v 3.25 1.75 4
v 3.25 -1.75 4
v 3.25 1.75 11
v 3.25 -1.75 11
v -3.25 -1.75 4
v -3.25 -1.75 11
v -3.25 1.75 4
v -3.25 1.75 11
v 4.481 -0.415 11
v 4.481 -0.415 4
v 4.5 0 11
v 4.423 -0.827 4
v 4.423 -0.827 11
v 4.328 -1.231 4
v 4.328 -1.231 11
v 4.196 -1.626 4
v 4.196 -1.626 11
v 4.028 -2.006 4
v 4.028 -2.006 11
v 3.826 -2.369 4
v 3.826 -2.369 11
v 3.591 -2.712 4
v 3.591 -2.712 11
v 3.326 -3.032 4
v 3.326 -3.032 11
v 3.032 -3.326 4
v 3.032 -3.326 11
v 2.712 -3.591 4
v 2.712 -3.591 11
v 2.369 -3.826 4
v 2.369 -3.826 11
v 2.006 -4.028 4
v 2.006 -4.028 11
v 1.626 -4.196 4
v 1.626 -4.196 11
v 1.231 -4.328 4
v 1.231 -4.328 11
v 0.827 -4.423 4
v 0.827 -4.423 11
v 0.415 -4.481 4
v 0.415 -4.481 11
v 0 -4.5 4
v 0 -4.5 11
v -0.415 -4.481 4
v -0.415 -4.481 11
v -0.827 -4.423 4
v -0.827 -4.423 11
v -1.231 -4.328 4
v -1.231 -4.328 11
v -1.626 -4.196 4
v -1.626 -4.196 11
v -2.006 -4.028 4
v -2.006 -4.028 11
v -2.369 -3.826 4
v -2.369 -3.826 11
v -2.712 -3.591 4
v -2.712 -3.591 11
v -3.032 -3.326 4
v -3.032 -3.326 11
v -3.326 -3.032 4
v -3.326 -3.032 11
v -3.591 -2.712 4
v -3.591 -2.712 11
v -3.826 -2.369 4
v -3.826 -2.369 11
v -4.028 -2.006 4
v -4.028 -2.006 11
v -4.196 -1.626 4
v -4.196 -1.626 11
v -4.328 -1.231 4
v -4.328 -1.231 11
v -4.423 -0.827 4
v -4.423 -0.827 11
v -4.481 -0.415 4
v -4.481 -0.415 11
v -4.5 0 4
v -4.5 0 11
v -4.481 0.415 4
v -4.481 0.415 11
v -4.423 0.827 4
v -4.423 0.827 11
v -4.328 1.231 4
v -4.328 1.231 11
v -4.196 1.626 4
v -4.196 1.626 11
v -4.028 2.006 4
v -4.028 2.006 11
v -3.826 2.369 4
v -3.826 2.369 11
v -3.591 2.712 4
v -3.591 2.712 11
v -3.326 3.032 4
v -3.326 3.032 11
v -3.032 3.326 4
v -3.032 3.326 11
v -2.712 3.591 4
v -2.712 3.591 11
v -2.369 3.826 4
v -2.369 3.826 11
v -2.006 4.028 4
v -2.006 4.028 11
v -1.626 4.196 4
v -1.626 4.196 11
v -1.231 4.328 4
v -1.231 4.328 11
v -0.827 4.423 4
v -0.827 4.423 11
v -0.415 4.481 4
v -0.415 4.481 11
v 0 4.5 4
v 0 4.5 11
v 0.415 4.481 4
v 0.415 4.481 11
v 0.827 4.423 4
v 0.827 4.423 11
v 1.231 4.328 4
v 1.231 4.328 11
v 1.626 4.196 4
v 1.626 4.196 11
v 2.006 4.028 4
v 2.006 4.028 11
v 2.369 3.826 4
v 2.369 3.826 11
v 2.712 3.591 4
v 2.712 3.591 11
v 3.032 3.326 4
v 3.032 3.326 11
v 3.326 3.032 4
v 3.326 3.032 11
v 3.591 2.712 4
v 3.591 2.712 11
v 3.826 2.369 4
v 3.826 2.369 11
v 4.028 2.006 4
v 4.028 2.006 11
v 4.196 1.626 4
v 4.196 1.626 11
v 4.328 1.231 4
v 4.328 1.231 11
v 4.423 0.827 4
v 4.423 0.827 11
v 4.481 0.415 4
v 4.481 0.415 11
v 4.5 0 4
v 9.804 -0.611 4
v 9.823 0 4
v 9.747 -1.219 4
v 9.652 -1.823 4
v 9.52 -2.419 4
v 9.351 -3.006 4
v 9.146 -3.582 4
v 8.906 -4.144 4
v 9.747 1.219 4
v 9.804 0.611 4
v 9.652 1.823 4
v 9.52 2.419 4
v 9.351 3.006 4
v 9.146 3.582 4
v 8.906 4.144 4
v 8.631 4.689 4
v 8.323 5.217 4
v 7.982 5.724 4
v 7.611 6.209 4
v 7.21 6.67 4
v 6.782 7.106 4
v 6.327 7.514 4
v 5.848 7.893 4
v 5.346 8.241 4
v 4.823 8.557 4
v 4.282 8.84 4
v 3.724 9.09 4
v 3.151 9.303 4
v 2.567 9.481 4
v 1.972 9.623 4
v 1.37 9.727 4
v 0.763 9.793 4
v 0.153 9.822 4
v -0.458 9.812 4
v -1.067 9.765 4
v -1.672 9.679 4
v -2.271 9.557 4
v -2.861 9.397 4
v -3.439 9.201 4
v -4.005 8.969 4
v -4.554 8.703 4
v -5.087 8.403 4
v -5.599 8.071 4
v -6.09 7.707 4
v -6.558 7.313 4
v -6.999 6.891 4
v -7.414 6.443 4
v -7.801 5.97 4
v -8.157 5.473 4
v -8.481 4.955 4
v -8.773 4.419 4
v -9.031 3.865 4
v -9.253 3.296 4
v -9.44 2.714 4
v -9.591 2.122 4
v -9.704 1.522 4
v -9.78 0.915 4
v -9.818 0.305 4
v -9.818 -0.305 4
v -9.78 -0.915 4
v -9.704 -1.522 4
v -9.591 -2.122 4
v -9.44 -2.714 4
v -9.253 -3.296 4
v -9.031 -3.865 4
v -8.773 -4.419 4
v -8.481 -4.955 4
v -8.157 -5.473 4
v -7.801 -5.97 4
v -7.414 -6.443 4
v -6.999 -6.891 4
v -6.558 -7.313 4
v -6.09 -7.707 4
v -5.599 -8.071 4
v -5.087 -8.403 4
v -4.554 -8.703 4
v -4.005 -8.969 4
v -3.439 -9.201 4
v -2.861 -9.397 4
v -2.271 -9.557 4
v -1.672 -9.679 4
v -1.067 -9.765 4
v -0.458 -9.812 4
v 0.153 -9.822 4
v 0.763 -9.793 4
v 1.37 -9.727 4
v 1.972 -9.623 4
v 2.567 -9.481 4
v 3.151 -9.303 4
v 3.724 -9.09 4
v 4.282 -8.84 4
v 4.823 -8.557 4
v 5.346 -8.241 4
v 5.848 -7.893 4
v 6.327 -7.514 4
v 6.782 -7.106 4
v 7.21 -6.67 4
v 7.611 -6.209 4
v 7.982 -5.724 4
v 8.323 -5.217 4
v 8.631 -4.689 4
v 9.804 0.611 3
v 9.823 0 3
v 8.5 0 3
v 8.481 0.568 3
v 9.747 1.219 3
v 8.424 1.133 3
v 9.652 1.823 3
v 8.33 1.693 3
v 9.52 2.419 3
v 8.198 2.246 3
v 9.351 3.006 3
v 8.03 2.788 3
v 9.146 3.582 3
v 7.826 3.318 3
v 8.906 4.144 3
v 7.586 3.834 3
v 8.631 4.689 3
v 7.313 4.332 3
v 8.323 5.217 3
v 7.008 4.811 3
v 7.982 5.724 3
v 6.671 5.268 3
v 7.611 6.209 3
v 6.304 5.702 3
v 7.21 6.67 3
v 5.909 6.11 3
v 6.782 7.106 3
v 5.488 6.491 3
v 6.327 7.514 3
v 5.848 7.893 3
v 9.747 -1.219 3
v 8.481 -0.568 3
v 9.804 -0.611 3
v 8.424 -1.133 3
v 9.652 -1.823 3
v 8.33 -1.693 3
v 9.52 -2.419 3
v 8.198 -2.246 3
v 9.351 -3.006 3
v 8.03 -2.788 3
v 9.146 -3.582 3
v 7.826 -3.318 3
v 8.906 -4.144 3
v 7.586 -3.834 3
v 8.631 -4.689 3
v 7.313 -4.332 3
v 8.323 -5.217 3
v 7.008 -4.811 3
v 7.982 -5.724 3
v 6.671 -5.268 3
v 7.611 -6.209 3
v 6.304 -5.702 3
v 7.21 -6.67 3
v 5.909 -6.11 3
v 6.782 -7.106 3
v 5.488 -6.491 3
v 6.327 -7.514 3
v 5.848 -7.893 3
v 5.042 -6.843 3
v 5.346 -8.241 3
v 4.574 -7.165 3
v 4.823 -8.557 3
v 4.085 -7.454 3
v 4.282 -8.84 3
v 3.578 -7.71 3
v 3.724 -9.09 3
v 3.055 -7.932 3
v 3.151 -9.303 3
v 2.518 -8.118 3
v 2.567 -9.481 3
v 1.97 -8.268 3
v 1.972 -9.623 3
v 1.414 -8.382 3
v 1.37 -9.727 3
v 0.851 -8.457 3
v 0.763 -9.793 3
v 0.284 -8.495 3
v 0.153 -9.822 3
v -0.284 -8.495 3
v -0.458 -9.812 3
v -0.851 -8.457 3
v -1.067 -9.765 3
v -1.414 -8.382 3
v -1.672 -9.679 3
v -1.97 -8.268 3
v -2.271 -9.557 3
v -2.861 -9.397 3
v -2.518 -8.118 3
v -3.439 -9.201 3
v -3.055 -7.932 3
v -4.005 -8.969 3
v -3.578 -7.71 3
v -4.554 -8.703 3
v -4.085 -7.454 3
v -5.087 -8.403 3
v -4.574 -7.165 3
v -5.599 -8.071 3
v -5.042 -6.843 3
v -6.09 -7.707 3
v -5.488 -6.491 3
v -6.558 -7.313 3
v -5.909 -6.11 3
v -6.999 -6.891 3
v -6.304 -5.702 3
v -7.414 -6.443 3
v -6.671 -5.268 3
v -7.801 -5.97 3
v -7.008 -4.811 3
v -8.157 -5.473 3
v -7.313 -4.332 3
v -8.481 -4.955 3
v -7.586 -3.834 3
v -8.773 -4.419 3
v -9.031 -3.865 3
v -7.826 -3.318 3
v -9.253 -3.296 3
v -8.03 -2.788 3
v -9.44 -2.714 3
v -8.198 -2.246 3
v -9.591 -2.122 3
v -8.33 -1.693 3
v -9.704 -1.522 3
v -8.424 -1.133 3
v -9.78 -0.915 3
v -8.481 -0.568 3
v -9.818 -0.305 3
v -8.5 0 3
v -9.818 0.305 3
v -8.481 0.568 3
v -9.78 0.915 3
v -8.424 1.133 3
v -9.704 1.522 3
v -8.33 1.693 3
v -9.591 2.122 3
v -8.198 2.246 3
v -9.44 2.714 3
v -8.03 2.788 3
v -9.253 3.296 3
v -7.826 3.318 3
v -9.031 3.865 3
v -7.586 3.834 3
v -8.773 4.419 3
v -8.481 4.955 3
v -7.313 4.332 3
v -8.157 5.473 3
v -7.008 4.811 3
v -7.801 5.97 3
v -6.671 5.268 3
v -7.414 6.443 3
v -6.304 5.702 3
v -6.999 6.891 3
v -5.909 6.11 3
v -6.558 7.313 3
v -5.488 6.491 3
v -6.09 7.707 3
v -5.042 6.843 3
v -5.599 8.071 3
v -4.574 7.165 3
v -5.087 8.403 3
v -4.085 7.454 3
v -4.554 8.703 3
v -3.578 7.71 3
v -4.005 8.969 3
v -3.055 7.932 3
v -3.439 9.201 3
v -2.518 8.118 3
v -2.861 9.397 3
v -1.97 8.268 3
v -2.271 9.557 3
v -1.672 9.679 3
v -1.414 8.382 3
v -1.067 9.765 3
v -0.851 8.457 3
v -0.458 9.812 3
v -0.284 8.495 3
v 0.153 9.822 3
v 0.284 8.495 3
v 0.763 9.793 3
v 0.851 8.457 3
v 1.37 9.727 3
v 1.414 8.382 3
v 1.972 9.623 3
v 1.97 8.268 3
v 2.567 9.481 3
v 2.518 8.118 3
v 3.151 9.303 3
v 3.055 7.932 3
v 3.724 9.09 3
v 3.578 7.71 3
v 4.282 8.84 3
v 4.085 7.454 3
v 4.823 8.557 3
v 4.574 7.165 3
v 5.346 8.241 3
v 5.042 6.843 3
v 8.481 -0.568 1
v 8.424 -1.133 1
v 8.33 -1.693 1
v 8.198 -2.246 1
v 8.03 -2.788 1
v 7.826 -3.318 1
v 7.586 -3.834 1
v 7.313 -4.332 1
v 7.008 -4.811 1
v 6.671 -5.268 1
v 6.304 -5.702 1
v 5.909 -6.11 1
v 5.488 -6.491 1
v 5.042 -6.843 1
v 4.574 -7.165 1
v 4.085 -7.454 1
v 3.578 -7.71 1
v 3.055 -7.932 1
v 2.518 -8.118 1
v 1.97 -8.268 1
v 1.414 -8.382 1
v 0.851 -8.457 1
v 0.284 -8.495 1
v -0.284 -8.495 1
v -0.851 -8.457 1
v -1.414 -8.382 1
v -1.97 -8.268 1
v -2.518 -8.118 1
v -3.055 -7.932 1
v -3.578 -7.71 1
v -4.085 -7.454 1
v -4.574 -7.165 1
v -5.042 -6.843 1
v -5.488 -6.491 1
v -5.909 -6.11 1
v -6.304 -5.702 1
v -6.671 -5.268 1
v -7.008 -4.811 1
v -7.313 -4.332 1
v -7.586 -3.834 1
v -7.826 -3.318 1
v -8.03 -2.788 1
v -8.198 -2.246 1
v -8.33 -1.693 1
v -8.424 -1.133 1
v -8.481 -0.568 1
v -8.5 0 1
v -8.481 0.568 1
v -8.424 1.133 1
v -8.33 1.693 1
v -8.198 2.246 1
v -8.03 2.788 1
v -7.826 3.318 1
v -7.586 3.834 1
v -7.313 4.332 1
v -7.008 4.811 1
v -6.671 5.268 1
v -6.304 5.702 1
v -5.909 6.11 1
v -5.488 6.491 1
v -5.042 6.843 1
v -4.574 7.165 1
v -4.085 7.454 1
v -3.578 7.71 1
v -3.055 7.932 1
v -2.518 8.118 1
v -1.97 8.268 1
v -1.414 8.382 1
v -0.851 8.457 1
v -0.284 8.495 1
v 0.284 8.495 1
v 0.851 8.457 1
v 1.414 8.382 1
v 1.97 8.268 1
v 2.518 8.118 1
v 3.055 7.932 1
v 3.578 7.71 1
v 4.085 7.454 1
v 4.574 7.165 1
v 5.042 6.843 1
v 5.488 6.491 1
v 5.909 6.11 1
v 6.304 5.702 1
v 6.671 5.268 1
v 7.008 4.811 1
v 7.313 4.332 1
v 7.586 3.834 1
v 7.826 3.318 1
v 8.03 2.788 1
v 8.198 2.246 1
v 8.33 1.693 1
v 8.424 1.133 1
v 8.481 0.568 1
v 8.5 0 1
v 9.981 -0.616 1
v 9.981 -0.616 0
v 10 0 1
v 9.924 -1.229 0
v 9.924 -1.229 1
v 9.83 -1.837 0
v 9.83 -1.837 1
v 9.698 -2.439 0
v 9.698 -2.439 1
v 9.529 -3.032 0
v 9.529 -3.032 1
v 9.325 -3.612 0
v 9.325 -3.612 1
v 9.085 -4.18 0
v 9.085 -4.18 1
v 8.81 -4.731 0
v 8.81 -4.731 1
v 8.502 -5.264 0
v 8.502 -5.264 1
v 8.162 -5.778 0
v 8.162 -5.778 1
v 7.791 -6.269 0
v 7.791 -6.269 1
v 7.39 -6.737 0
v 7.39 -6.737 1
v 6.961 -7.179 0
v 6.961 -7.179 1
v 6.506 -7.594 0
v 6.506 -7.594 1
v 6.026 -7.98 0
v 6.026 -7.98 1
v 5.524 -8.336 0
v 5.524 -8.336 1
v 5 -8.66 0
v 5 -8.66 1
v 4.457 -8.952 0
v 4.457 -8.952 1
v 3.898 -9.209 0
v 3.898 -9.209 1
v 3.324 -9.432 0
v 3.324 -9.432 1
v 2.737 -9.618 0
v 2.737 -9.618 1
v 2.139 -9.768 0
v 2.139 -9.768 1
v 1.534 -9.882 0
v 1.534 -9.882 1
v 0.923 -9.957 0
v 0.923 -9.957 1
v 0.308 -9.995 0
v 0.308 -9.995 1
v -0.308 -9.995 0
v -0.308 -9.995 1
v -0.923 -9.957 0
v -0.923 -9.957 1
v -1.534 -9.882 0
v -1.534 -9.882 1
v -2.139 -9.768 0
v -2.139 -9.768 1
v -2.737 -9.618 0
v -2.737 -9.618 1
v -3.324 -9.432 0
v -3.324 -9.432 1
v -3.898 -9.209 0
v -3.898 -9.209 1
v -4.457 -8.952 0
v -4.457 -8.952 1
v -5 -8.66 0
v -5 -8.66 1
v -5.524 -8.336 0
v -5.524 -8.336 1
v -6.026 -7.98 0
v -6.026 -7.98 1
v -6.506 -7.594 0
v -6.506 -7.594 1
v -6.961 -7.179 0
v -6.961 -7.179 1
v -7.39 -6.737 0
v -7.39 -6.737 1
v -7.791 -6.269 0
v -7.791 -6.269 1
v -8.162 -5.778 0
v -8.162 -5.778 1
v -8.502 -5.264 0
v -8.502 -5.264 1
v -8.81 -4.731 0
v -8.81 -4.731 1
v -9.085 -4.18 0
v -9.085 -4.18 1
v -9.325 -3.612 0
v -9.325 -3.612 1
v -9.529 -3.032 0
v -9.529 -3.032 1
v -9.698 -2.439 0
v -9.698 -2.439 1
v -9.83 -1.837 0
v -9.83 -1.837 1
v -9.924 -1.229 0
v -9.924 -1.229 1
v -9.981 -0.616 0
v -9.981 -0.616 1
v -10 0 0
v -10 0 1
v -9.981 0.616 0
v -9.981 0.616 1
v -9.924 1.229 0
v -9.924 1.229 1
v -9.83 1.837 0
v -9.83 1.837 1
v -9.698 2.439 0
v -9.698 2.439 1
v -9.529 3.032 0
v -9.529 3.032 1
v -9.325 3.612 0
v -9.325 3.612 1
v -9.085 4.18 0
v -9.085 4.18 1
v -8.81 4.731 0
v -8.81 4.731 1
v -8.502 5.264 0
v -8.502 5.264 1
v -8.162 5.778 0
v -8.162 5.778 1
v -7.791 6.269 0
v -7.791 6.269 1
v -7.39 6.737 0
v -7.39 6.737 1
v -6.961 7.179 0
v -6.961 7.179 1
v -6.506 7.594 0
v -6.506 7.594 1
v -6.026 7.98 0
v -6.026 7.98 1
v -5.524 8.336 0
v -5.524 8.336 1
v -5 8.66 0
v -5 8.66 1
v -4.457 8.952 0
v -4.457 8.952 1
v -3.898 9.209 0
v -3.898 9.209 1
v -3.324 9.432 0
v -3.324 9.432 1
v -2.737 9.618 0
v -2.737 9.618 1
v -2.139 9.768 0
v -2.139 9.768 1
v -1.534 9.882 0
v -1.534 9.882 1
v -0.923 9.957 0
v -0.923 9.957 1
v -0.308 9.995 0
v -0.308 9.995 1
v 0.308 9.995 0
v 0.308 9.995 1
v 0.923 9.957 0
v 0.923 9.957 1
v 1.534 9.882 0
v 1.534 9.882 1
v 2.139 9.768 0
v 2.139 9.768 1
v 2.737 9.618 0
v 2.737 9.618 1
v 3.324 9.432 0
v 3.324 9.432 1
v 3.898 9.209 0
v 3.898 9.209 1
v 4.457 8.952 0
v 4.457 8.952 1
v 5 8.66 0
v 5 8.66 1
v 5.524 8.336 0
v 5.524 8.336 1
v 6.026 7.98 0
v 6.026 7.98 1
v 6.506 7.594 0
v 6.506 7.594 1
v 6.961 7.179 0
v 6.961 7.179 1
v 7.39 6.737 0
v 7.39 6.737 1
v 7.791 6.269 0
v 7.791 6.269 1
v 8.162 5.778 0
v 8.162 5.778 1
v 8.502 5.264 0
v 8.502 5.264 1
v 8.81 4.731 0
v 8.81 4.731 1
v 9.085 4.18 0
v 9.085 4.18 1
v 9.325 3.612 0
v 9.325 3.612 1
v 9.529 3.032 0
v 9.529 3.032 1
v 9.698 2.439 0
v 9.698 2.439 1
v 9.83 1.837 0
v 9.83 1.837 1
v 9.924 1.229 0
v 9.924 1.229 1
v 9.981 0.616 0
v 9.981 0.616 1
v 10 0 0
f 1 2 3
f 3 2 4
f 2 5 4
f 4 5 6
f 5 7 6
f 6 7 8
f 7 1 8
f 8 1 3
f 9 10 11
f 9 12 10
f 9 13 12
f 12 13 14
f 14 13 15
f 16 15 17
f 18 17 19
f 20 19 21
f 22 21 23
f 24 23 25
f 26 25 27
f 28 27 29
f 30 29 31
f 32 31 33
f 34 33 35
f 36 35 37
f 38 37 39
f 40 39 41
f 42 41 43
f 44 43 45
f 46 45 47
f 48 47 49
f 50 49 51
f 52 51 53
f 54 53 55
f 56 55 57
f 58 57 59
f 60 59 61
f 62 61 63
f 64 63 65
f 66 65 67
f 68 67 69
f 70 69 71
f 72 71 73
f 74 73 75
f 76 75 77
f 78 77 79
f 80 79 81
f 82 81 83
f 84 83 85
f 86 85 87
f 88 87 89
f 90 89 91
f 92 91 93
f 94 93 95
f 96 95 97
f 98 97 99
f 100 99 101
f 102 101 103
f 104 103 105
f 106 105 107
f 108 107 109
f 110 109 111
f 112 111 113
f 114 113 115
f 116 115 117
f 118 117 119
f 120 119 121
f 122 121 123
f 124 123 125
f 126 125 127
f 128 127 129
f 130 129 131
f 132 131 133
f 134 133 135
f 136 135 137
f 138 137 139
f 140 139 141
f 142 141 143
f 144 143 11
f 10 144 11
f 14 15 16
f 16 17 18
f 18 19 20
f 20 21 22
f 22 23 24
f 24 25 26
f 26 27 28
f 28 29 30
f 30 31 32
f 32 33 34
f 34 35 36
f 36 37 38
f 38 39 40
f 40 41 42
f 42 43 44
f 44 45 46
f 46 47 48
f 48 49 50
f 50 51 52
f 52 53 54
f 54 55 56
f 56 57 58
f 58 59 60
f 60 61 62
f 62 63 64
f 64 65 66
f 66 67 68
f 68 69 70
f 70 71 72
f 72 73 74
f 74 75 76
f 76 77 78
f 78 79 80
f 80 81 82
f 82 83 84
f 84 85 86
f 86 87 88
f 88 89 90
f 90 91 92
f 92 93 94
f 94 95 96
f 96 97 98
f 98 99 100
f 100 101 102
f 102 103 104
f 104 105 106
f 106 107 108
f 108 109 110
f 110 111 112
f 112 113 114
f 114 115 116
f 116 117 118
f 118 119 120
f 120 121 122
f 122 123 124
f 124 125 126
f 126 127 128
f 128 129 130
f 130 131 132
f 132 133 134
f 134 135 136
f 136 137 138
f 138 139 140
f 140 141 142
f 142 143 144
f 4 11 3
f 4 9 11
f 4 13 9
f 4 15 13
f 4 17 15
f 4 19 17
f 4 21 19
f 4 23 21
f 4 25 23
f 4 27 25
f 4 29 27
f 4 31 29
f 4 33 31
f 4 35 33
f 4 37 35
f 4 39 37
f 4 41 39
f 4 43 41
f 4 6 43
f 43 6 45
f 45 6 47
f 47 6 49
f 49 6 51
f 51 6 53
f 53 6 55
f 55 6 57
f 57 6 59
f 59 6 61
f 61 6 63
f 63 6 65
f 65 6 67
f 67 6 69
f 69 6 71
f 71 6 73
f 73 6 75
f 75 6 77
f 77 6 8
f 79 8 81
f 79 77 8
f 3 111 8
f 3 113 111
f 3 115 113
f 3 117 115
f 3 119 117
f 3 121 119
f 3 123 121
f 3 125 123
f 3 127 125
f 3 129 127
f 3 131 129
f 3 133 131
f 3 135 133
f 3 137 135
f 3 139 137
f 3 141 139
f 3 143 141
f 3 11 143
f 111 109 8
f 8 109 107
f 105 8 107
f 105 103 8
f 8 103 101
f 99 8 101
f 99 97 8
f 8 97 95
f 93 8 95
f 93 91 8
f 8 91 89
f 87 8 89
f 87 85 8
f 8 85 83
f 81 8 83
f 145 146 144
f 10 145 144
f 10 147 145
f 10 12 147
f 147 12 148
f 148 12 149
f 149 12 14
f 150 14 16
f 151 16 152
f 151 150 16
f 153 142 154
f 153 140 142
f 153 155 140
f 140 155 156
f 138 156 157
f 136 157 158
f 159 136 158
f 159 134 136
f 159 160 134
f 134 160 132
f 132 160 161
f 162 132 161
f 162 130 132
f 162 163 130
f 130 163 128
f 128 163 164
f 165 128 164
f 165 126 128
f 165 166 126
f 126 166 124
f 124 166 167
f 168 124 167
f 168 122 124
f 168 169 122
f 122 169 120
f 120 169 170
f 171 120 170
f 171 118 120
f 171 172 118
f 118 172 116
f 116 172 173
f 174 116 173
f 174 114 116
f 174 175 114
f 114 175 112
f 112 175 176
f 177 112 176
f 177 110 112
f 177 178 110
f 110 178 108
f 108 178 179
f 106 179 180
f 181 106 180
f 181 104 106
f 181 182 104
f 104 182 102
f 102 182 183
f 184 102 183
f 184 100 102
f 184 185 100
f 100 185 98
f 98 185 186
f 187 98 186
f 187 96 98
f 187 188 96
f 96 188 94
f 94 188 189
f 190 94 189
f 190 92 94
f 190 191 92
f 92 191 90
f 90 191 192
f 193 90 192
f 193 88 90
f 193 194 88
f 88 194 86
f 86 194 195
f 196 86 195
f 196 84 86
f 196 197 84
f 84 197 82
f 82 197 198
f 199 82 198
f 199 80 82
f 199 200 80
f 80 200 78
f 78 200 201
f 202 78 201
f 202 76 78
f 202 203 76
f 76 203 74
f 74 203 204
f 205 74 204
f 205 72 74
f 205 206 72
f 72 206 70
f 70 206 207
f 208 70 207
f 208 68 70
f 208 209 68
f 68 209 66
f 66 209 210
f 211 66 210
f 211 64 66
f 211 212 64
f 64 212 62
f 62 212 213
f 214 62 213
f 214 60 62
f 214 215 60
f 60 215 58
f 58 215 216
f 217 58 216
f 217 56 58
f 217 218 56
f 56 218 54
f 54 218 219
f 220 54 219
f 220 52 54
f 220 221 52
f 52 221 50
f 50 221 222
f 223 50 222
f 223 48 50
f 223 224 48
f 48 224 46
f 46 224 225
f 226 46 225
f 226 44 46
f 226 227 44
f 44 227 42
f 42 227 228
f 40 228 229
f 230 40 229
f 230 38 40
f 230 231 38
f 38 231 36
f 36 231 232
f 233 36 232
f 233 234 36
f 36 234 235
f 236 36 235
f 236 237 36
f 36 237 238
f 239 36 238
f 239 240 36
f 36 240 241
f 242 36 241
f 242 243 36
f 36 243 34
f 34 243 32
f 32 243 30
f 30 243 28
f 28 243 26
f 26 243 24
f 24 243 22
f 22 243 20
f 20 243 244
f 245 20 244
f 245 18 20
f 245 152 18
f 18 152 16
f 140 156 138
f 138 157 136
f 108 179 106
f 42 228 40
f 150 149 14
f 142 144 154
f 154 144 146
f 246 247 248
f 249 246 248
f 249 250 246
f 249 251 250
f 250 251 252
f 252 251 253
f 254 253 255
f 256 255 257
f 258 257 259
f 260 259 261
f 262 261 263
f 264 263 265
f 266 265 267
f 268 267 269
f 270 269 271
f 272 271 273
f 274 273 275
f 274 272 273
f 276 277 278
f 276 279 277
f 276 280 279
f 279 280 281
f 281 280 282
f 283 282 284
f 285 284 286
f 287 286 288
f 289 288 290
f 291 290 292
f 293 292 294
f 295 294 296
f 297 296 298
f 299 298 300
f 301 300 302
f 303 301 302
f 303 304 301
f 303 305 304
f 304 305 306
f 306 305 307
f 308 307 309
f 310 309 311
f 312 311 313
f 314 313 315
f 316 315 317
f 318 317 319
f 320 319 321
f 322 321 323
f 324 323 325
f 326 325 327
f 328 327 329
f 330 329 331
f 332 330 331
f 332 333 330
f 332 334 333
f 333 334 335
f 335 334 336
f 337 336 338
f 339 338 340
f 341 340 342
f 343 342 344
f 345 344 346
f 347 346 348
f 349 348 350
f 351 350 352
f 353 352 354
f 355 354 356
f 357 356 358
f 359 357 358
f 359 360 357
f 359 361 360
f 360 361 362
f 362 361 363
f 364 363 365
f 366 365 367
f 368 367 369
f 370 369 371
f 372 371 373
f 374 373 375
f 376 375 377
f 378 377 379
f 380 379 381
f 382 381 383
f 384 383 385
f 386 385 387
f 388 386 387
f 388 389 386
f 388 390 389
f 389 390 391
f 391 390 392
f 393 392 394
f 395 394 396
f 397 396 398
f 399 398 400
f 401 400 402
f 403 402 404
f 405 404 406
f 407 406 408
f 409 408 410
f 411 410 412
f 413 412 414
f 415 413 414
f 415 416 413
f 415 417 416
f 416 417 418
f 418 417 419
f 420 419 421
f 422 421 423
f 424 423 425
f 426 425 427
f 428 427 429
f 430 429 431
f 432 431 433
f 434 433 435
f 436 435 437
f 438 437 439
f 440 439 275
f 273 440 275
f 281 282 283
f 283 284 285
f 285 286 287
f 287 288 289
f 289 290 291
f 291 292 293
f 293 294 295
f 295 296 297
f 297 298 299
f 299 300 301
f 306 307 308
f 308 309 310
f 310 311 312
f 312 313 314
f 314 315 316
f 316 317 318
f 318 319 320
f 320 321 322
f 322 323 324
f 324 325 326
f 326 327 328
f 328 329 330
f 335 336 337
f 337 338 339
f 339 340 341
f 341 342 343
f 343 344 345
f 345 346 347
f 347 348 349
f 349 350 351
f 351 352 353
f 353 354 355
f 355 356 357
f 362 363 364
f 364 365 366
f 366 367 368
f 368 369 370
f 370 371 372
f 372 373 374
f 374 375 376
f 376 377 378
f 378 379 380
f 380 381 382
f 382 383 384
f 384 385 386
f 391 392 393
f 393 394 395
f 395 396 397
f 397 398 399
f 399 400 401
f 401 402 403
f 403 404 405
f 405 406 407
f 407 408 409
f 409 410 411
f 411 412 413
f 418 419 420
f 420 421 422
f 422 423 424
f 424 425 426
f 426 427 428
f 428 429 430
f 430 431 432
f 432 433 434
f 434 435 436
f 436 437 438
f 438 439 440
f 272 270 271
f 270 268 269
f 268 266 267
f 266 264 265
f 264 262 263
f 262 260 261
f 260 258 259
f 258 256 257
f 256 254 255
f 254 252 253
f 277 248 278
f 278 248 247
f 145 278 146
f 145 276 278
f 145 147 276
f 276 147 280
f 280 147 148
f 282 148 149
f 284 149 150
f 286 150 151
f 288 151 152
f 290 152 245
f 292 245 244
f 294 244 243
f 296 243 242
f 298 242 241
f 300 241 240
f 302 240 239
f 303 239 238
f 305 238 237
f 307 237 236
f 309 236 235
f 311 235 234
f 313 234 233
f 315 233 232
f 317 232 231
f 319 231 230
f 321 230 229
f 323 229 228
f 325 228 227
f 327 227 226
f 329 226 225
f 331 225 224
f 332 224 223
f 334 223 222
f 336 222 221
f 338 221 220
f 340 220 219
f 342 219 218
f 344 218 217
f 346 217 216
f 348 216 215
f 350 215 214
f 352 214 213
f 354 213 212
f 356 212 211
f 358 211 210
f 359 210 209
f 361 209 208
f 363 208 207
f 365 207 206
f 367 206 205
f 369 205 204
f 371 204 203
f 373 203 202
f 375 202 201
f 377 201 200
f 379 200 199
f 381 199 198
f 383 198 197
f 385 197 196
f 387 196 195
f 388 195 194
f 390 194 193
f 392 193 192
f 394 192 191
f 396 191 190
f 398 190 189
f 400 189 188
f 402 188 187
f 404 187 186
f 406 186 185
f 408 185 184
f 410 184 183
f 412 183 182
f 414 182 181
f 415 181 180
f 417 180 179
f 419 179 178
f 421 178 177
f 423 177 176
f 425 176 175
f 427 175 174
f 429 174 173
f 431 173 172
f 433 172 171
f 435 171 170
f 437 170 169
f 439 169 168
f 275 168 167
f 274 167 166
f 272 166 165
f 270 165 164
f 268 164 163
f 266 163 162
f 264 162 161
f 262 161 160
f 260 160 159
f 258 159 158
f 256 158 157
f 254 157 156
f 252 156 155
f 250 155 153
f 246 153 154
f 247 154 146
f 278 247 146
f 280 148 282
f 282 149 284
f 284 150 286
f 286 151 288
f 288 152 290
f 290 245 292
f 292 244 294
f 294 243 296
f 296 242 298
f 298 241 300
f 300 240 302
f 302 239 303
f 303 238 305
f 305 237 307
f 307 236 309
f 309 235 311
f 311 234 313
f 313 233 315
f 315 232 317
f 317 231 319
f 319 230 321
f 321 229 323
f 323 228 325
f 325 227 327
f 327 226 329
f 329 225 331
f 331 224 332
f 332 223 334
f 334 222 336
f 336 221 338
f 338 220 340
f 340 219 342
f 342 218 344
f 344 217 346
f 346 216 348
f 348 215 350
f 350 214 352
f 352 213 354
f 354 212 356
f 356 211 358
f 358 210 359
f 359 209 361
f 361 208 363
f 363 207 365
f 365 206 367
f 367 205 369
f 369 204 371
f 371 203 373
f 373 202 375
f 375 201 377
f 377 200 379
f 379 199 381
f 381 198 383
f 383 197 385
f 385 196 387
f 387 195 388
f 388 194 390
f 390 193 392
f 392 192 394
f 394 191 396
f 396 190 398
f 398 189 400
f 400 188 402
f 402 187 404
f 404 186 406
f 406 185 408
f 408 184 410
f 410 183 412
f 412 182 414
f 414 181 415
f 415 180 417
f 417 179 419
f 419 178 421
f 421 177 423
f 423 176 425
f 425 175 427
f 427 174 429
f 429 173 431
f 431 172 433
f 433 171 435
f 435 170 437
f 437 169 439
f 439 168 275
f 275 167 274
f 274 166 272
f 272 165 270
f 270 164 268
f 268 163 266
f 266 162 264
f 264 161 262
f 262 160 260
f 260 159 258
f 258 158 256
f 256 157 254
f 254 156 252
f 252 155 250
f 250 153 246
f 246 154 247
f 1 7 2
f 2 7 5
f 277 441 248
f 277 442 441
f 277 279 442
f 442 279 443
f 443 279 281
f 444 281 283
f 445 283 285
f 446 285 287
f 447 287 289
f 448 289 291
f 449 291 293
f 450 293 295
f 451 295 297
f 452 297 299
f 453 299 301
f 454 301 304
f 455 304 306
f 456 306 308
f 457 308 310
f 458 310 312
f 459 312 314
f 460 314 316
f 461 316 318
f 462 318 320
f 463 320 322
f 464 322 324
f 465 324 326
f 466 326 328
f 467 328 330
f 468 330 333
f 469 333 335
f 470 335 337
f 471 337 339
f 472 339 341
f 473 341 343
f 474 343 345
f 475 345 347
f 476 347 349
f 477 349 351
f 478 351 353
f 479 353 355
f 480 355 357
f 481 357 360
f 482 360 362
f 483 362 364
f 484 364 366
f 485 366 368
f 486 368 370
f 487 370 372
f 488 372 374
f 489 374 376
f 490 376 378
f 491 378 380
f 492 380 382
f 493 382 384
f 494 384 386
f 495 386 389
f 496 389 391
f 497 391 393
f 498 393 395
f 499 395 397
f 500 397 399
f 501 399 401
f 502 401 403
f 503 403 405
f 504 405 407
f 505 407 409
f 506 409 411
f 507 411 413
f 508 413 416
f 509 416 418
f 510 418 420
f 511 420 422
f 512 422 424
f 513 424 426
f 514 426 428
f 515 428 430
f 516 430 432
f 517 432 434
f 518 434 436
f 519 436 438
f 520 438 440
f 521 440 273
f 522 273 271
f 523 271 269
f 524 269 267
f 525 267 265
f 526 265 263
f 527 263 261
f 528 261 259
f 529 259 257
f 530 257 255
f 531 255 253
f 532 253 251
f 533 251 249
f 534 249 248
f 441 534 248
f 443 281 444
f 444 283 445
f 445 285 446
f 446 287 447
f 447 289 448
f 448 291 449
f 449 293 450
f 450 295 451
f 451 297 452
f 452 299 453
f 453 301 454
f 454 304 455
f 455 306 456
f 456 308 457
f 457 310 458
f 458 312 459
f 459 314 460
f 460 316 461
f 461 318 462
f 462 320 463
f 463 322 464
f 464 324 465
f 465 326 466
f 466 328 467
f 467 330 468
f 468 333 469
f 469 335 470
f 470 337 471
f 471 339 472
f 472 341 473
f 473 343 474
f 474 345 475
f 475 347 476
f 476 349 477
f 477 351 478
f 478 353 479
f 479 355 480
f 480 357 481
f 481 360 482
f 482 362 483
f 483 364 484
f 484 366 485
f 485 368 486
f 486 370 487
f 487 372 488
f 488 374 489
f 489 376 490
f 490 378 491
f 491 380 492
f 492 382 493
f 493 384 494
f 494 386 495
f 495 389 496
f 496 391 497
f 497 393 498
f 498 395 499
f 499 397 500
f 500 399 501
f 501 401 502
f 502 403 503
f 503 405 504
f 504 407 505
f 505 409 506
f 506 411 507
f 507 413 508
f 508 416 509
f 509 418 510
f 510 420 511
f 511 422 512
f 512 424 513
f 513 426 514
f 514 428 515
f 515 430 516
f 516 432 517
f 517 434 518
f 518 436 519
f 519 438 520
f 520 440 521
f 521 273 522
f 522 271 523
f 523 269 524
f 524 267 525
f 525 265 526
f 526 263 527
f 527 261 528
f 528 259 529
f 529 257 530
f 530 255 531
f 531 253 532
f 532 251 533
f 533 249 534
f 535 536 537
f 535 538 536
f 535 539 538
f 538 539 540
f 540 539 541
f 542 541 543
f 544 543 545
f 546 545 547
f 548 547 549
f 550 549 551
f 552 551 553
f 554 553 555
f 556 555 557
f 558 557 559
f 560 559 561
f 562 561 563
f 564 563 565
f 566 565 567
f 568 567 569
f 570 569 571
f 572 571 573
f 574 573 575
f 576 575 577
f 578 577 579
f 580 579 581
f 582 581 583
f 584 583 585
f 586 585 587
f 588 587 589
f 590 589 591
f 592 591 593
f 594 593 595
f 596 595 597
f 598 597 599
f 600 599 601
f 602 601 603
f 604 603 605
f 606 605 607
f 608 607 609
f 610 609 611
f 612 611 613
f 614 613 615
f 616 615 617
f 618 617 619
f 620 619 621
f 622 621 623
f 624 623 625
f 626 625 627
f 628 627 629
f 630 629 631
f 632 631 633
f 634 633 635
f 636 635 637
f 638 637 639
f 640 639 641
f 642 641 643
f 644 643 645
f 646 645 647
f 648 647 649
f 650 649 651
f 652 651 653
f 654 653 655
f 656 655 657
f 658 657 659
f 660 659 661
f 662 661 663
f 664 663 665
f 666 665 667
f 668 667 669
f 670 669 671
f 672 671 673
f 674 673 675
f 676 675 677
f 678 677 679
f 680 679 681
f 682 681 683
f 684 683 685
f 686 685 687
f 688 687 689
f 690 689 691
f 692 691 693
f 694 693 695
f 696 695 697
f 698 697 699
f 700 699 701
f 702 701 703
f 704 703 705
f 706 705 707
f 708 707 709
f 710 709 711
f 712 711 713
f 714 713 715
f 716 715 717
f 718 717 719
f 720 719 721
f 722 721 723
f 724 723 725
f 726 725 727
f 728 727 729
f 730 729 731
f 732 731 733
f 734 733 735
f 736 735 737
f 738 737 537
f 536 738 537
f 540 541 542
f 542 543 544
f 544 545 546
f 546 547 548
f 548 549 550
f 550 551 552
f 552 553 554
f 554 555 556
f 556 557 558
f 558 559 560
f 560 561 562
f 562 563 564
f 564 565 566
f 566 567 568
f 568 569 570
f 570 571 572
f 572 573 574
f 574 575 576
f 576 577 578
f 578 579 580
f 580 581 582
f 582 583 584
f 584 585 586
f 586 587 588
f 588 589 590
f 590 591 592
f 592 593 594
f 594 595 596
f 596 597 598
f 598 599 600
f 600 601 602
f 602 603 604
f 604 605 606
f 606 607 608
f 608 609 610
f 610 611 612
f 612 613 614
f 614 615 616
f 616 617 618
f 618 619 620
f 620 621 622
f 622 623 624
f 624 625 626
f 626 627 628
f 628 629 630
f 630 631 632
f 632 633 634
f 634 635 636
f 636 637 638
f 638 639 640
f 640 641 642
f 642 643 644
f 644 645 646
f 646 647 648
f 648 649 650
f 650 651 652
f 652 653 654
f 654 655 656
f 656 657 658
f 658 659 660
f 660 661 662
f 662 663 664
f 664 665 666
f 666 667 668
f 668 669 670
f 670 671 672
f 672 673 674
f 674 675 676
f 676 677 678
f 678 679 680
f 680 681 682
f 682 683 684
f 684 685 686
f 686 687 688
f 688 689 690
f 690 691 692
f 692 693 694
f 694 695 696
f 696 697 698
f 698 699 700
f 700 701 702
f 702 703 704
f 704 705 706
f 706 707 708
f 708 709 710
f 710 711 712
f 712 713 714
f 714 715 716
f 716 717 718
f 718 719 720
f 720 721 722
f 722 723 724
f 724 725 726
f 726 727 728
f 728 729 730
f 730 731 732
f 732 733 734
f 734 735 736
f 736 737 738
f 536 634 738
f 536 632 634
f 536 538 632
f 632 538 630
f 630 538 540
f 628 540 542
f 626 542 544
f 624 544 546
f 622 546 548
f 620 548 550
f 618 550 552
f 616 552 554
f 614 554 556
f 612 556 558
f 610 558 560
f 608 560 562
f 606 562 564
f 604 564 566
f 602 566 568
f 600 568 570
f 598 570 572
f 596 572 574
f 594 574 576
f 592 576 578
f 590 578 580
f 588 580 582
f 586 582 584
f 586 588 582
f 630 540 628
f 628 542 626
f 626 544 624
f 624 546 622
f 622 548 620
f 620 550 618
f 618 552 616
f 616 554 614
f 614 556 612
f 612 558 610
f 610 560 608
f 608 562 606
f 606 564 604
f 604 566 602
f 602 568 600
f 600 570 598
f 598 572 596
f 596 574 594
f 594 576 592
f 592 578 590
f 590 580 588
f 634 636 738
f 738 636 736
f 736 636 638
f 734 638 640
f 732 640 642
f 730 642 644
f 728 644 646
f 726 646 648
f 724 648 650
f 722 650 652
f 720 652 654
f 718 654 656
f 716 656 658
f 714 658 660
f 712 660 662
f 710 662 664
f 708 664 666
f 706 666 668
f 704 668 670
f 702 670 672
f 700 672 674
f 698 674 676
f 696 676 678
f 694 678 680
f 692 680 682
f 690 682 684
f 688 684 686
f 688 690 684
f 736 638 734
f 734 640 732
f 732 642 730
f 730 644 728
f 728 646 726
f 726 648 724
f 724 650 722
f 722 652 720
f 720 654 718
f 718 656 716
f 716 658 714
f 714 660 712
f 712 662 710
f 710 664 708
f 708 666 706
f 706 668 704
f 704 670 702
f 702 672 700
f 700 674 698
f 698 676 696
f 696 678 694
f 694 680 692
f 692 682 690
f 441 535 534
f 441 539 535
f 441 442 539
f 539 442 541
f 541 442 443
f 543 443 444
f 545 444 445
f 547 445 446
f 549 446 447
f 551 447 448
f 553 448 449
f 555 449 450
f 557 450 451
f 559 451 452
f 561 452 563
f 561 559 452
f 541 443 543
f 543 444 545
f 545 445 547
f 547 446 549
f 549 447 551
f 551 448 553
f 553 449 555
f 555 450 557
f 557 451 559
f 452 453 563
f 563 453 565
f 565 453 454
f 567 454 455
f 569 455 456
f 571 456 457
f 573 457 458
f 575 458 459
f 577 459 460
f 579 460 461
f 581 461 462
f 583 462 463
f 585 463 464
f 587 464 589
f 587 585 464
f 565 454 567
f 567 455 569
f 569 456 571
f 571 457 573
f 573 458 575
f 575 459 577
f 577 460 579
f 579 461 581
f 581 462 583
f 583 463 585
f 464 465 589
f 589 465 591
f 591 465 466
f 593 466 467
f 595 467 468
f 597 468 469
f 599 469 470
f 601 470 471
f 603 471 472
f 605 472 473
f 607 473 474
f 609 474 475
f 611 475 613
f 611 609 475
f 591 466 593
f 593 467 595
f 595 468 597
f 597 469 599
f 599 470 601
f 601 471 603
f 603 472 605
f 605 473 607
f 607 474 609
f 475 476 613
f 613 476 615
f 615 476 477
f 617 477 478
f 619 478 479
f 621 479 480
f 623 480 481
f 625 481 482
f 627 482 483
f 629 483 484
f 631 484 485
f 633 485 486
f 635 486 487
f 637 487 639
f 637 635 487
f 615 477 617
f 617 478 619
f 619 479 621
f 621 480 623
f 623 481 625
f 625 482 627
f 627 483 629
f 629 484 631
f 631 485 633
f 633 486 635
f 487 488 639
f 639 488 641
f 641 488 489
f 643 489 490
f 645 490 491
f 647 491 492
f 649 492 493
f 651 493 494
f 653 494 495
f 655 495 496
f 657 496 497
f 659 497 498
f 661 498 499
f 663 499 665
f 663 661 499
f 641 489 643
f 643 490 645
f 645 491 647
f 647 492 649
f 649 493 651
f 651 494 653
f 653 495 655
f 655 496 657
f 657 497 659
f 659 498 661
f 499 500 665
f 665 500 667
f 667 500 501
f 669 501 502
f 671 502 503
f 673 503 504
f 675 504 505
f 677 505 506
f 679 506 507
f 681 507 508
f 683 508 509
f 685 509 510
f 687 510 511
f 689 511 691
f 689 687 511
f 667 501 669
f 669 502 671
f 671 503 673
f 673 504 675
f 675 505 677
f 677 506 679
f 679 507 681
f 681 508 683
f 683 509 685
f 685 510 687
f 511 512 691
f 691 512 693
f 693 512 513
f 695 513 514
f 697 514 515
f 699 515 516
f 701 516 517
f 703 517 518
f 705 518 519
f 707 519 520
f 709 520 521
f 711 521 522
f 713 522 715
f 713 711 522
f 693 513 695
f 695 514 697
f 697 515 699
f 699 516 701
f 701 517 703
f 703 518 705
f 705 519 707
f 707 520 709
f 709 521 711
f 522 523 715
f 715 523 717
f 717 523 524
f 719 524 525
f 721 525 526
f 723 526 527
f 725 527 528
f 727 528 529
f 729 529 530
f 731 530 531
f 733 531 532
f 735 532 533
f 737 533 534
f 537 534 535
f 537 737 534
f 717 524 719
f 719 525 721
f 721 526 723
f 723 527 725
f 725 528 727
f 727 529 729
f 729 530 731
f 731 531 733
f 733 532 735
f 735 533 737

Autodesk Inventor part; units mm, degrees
ref_plane "YZ Plane" through (0, 0, 0) normal (1, 0, 0) x (0, 1, 0)
ref_plane "XZ Plane" through (0, 0, 0) normal (0, 1, 0) x (-1, 0, 0)
ref_plane "XY Plane" through (0, 0, 0) normal (0, 0, 1) x (1, 0, 0)
sketch "Sketch1" plane through (0, 0, 0) normal (0, 0, 1) x (1, 0, 0)
  circle A0 centre (0, 0) radius 10
  dimension "d0" = 20
extrude "Extrusion1" add sketch "Sketch1" along normal blind 1
sketch "Sketch2" plane through (0, 0, 1) normal (0, 0, 1) x (1, 0, 0)
  circle A0 centre (0, 0) radius 8.5
  dimension "d3" = 17
extrude "Extrusion2" add sketch "Sketch2" along normal blind 2
sketch "Sketch3" plane through (0, 0, 3) normal (0, 0, 1) x (1, 0, 0)
  circle A0 centre (0, 0) radius 9.8227
extrude "Extrusion3" add sketch "Sketch3" along normal blind 1
sketch "Sketch4" plane through (0, 0, 4) normal (0, 0, 1) x (1, 0, 0)
  circle A0 centre (0, 0) radius 4.5
  line L0 (-3.25, 1.75) -> (3.25, 1.75)
  line L1 (3.25, 1.75) -> (3.25, -1.75)
  line L2 (3.25, -1.75) -> (-3.25, -1.75)
  line L3 (-3.25, -1.75) -> (-3.25, 1.75)
  dimension "d8" = 9
  dimension "d9" = 3.5
  dimension "d10" = 6.5
  dimension "d11" = 1.75
  dimension "d12" = 3.25
extrude "Extrusion4" add sketch "Sketch4" along normal blind 7
sketch "Sketch5" plane through (0, 0, 0) normal (0, 0, -1) x (-1, 0, 0)
  point P0 (0, 0)
properties part number "Pulling Stepper Pully"
